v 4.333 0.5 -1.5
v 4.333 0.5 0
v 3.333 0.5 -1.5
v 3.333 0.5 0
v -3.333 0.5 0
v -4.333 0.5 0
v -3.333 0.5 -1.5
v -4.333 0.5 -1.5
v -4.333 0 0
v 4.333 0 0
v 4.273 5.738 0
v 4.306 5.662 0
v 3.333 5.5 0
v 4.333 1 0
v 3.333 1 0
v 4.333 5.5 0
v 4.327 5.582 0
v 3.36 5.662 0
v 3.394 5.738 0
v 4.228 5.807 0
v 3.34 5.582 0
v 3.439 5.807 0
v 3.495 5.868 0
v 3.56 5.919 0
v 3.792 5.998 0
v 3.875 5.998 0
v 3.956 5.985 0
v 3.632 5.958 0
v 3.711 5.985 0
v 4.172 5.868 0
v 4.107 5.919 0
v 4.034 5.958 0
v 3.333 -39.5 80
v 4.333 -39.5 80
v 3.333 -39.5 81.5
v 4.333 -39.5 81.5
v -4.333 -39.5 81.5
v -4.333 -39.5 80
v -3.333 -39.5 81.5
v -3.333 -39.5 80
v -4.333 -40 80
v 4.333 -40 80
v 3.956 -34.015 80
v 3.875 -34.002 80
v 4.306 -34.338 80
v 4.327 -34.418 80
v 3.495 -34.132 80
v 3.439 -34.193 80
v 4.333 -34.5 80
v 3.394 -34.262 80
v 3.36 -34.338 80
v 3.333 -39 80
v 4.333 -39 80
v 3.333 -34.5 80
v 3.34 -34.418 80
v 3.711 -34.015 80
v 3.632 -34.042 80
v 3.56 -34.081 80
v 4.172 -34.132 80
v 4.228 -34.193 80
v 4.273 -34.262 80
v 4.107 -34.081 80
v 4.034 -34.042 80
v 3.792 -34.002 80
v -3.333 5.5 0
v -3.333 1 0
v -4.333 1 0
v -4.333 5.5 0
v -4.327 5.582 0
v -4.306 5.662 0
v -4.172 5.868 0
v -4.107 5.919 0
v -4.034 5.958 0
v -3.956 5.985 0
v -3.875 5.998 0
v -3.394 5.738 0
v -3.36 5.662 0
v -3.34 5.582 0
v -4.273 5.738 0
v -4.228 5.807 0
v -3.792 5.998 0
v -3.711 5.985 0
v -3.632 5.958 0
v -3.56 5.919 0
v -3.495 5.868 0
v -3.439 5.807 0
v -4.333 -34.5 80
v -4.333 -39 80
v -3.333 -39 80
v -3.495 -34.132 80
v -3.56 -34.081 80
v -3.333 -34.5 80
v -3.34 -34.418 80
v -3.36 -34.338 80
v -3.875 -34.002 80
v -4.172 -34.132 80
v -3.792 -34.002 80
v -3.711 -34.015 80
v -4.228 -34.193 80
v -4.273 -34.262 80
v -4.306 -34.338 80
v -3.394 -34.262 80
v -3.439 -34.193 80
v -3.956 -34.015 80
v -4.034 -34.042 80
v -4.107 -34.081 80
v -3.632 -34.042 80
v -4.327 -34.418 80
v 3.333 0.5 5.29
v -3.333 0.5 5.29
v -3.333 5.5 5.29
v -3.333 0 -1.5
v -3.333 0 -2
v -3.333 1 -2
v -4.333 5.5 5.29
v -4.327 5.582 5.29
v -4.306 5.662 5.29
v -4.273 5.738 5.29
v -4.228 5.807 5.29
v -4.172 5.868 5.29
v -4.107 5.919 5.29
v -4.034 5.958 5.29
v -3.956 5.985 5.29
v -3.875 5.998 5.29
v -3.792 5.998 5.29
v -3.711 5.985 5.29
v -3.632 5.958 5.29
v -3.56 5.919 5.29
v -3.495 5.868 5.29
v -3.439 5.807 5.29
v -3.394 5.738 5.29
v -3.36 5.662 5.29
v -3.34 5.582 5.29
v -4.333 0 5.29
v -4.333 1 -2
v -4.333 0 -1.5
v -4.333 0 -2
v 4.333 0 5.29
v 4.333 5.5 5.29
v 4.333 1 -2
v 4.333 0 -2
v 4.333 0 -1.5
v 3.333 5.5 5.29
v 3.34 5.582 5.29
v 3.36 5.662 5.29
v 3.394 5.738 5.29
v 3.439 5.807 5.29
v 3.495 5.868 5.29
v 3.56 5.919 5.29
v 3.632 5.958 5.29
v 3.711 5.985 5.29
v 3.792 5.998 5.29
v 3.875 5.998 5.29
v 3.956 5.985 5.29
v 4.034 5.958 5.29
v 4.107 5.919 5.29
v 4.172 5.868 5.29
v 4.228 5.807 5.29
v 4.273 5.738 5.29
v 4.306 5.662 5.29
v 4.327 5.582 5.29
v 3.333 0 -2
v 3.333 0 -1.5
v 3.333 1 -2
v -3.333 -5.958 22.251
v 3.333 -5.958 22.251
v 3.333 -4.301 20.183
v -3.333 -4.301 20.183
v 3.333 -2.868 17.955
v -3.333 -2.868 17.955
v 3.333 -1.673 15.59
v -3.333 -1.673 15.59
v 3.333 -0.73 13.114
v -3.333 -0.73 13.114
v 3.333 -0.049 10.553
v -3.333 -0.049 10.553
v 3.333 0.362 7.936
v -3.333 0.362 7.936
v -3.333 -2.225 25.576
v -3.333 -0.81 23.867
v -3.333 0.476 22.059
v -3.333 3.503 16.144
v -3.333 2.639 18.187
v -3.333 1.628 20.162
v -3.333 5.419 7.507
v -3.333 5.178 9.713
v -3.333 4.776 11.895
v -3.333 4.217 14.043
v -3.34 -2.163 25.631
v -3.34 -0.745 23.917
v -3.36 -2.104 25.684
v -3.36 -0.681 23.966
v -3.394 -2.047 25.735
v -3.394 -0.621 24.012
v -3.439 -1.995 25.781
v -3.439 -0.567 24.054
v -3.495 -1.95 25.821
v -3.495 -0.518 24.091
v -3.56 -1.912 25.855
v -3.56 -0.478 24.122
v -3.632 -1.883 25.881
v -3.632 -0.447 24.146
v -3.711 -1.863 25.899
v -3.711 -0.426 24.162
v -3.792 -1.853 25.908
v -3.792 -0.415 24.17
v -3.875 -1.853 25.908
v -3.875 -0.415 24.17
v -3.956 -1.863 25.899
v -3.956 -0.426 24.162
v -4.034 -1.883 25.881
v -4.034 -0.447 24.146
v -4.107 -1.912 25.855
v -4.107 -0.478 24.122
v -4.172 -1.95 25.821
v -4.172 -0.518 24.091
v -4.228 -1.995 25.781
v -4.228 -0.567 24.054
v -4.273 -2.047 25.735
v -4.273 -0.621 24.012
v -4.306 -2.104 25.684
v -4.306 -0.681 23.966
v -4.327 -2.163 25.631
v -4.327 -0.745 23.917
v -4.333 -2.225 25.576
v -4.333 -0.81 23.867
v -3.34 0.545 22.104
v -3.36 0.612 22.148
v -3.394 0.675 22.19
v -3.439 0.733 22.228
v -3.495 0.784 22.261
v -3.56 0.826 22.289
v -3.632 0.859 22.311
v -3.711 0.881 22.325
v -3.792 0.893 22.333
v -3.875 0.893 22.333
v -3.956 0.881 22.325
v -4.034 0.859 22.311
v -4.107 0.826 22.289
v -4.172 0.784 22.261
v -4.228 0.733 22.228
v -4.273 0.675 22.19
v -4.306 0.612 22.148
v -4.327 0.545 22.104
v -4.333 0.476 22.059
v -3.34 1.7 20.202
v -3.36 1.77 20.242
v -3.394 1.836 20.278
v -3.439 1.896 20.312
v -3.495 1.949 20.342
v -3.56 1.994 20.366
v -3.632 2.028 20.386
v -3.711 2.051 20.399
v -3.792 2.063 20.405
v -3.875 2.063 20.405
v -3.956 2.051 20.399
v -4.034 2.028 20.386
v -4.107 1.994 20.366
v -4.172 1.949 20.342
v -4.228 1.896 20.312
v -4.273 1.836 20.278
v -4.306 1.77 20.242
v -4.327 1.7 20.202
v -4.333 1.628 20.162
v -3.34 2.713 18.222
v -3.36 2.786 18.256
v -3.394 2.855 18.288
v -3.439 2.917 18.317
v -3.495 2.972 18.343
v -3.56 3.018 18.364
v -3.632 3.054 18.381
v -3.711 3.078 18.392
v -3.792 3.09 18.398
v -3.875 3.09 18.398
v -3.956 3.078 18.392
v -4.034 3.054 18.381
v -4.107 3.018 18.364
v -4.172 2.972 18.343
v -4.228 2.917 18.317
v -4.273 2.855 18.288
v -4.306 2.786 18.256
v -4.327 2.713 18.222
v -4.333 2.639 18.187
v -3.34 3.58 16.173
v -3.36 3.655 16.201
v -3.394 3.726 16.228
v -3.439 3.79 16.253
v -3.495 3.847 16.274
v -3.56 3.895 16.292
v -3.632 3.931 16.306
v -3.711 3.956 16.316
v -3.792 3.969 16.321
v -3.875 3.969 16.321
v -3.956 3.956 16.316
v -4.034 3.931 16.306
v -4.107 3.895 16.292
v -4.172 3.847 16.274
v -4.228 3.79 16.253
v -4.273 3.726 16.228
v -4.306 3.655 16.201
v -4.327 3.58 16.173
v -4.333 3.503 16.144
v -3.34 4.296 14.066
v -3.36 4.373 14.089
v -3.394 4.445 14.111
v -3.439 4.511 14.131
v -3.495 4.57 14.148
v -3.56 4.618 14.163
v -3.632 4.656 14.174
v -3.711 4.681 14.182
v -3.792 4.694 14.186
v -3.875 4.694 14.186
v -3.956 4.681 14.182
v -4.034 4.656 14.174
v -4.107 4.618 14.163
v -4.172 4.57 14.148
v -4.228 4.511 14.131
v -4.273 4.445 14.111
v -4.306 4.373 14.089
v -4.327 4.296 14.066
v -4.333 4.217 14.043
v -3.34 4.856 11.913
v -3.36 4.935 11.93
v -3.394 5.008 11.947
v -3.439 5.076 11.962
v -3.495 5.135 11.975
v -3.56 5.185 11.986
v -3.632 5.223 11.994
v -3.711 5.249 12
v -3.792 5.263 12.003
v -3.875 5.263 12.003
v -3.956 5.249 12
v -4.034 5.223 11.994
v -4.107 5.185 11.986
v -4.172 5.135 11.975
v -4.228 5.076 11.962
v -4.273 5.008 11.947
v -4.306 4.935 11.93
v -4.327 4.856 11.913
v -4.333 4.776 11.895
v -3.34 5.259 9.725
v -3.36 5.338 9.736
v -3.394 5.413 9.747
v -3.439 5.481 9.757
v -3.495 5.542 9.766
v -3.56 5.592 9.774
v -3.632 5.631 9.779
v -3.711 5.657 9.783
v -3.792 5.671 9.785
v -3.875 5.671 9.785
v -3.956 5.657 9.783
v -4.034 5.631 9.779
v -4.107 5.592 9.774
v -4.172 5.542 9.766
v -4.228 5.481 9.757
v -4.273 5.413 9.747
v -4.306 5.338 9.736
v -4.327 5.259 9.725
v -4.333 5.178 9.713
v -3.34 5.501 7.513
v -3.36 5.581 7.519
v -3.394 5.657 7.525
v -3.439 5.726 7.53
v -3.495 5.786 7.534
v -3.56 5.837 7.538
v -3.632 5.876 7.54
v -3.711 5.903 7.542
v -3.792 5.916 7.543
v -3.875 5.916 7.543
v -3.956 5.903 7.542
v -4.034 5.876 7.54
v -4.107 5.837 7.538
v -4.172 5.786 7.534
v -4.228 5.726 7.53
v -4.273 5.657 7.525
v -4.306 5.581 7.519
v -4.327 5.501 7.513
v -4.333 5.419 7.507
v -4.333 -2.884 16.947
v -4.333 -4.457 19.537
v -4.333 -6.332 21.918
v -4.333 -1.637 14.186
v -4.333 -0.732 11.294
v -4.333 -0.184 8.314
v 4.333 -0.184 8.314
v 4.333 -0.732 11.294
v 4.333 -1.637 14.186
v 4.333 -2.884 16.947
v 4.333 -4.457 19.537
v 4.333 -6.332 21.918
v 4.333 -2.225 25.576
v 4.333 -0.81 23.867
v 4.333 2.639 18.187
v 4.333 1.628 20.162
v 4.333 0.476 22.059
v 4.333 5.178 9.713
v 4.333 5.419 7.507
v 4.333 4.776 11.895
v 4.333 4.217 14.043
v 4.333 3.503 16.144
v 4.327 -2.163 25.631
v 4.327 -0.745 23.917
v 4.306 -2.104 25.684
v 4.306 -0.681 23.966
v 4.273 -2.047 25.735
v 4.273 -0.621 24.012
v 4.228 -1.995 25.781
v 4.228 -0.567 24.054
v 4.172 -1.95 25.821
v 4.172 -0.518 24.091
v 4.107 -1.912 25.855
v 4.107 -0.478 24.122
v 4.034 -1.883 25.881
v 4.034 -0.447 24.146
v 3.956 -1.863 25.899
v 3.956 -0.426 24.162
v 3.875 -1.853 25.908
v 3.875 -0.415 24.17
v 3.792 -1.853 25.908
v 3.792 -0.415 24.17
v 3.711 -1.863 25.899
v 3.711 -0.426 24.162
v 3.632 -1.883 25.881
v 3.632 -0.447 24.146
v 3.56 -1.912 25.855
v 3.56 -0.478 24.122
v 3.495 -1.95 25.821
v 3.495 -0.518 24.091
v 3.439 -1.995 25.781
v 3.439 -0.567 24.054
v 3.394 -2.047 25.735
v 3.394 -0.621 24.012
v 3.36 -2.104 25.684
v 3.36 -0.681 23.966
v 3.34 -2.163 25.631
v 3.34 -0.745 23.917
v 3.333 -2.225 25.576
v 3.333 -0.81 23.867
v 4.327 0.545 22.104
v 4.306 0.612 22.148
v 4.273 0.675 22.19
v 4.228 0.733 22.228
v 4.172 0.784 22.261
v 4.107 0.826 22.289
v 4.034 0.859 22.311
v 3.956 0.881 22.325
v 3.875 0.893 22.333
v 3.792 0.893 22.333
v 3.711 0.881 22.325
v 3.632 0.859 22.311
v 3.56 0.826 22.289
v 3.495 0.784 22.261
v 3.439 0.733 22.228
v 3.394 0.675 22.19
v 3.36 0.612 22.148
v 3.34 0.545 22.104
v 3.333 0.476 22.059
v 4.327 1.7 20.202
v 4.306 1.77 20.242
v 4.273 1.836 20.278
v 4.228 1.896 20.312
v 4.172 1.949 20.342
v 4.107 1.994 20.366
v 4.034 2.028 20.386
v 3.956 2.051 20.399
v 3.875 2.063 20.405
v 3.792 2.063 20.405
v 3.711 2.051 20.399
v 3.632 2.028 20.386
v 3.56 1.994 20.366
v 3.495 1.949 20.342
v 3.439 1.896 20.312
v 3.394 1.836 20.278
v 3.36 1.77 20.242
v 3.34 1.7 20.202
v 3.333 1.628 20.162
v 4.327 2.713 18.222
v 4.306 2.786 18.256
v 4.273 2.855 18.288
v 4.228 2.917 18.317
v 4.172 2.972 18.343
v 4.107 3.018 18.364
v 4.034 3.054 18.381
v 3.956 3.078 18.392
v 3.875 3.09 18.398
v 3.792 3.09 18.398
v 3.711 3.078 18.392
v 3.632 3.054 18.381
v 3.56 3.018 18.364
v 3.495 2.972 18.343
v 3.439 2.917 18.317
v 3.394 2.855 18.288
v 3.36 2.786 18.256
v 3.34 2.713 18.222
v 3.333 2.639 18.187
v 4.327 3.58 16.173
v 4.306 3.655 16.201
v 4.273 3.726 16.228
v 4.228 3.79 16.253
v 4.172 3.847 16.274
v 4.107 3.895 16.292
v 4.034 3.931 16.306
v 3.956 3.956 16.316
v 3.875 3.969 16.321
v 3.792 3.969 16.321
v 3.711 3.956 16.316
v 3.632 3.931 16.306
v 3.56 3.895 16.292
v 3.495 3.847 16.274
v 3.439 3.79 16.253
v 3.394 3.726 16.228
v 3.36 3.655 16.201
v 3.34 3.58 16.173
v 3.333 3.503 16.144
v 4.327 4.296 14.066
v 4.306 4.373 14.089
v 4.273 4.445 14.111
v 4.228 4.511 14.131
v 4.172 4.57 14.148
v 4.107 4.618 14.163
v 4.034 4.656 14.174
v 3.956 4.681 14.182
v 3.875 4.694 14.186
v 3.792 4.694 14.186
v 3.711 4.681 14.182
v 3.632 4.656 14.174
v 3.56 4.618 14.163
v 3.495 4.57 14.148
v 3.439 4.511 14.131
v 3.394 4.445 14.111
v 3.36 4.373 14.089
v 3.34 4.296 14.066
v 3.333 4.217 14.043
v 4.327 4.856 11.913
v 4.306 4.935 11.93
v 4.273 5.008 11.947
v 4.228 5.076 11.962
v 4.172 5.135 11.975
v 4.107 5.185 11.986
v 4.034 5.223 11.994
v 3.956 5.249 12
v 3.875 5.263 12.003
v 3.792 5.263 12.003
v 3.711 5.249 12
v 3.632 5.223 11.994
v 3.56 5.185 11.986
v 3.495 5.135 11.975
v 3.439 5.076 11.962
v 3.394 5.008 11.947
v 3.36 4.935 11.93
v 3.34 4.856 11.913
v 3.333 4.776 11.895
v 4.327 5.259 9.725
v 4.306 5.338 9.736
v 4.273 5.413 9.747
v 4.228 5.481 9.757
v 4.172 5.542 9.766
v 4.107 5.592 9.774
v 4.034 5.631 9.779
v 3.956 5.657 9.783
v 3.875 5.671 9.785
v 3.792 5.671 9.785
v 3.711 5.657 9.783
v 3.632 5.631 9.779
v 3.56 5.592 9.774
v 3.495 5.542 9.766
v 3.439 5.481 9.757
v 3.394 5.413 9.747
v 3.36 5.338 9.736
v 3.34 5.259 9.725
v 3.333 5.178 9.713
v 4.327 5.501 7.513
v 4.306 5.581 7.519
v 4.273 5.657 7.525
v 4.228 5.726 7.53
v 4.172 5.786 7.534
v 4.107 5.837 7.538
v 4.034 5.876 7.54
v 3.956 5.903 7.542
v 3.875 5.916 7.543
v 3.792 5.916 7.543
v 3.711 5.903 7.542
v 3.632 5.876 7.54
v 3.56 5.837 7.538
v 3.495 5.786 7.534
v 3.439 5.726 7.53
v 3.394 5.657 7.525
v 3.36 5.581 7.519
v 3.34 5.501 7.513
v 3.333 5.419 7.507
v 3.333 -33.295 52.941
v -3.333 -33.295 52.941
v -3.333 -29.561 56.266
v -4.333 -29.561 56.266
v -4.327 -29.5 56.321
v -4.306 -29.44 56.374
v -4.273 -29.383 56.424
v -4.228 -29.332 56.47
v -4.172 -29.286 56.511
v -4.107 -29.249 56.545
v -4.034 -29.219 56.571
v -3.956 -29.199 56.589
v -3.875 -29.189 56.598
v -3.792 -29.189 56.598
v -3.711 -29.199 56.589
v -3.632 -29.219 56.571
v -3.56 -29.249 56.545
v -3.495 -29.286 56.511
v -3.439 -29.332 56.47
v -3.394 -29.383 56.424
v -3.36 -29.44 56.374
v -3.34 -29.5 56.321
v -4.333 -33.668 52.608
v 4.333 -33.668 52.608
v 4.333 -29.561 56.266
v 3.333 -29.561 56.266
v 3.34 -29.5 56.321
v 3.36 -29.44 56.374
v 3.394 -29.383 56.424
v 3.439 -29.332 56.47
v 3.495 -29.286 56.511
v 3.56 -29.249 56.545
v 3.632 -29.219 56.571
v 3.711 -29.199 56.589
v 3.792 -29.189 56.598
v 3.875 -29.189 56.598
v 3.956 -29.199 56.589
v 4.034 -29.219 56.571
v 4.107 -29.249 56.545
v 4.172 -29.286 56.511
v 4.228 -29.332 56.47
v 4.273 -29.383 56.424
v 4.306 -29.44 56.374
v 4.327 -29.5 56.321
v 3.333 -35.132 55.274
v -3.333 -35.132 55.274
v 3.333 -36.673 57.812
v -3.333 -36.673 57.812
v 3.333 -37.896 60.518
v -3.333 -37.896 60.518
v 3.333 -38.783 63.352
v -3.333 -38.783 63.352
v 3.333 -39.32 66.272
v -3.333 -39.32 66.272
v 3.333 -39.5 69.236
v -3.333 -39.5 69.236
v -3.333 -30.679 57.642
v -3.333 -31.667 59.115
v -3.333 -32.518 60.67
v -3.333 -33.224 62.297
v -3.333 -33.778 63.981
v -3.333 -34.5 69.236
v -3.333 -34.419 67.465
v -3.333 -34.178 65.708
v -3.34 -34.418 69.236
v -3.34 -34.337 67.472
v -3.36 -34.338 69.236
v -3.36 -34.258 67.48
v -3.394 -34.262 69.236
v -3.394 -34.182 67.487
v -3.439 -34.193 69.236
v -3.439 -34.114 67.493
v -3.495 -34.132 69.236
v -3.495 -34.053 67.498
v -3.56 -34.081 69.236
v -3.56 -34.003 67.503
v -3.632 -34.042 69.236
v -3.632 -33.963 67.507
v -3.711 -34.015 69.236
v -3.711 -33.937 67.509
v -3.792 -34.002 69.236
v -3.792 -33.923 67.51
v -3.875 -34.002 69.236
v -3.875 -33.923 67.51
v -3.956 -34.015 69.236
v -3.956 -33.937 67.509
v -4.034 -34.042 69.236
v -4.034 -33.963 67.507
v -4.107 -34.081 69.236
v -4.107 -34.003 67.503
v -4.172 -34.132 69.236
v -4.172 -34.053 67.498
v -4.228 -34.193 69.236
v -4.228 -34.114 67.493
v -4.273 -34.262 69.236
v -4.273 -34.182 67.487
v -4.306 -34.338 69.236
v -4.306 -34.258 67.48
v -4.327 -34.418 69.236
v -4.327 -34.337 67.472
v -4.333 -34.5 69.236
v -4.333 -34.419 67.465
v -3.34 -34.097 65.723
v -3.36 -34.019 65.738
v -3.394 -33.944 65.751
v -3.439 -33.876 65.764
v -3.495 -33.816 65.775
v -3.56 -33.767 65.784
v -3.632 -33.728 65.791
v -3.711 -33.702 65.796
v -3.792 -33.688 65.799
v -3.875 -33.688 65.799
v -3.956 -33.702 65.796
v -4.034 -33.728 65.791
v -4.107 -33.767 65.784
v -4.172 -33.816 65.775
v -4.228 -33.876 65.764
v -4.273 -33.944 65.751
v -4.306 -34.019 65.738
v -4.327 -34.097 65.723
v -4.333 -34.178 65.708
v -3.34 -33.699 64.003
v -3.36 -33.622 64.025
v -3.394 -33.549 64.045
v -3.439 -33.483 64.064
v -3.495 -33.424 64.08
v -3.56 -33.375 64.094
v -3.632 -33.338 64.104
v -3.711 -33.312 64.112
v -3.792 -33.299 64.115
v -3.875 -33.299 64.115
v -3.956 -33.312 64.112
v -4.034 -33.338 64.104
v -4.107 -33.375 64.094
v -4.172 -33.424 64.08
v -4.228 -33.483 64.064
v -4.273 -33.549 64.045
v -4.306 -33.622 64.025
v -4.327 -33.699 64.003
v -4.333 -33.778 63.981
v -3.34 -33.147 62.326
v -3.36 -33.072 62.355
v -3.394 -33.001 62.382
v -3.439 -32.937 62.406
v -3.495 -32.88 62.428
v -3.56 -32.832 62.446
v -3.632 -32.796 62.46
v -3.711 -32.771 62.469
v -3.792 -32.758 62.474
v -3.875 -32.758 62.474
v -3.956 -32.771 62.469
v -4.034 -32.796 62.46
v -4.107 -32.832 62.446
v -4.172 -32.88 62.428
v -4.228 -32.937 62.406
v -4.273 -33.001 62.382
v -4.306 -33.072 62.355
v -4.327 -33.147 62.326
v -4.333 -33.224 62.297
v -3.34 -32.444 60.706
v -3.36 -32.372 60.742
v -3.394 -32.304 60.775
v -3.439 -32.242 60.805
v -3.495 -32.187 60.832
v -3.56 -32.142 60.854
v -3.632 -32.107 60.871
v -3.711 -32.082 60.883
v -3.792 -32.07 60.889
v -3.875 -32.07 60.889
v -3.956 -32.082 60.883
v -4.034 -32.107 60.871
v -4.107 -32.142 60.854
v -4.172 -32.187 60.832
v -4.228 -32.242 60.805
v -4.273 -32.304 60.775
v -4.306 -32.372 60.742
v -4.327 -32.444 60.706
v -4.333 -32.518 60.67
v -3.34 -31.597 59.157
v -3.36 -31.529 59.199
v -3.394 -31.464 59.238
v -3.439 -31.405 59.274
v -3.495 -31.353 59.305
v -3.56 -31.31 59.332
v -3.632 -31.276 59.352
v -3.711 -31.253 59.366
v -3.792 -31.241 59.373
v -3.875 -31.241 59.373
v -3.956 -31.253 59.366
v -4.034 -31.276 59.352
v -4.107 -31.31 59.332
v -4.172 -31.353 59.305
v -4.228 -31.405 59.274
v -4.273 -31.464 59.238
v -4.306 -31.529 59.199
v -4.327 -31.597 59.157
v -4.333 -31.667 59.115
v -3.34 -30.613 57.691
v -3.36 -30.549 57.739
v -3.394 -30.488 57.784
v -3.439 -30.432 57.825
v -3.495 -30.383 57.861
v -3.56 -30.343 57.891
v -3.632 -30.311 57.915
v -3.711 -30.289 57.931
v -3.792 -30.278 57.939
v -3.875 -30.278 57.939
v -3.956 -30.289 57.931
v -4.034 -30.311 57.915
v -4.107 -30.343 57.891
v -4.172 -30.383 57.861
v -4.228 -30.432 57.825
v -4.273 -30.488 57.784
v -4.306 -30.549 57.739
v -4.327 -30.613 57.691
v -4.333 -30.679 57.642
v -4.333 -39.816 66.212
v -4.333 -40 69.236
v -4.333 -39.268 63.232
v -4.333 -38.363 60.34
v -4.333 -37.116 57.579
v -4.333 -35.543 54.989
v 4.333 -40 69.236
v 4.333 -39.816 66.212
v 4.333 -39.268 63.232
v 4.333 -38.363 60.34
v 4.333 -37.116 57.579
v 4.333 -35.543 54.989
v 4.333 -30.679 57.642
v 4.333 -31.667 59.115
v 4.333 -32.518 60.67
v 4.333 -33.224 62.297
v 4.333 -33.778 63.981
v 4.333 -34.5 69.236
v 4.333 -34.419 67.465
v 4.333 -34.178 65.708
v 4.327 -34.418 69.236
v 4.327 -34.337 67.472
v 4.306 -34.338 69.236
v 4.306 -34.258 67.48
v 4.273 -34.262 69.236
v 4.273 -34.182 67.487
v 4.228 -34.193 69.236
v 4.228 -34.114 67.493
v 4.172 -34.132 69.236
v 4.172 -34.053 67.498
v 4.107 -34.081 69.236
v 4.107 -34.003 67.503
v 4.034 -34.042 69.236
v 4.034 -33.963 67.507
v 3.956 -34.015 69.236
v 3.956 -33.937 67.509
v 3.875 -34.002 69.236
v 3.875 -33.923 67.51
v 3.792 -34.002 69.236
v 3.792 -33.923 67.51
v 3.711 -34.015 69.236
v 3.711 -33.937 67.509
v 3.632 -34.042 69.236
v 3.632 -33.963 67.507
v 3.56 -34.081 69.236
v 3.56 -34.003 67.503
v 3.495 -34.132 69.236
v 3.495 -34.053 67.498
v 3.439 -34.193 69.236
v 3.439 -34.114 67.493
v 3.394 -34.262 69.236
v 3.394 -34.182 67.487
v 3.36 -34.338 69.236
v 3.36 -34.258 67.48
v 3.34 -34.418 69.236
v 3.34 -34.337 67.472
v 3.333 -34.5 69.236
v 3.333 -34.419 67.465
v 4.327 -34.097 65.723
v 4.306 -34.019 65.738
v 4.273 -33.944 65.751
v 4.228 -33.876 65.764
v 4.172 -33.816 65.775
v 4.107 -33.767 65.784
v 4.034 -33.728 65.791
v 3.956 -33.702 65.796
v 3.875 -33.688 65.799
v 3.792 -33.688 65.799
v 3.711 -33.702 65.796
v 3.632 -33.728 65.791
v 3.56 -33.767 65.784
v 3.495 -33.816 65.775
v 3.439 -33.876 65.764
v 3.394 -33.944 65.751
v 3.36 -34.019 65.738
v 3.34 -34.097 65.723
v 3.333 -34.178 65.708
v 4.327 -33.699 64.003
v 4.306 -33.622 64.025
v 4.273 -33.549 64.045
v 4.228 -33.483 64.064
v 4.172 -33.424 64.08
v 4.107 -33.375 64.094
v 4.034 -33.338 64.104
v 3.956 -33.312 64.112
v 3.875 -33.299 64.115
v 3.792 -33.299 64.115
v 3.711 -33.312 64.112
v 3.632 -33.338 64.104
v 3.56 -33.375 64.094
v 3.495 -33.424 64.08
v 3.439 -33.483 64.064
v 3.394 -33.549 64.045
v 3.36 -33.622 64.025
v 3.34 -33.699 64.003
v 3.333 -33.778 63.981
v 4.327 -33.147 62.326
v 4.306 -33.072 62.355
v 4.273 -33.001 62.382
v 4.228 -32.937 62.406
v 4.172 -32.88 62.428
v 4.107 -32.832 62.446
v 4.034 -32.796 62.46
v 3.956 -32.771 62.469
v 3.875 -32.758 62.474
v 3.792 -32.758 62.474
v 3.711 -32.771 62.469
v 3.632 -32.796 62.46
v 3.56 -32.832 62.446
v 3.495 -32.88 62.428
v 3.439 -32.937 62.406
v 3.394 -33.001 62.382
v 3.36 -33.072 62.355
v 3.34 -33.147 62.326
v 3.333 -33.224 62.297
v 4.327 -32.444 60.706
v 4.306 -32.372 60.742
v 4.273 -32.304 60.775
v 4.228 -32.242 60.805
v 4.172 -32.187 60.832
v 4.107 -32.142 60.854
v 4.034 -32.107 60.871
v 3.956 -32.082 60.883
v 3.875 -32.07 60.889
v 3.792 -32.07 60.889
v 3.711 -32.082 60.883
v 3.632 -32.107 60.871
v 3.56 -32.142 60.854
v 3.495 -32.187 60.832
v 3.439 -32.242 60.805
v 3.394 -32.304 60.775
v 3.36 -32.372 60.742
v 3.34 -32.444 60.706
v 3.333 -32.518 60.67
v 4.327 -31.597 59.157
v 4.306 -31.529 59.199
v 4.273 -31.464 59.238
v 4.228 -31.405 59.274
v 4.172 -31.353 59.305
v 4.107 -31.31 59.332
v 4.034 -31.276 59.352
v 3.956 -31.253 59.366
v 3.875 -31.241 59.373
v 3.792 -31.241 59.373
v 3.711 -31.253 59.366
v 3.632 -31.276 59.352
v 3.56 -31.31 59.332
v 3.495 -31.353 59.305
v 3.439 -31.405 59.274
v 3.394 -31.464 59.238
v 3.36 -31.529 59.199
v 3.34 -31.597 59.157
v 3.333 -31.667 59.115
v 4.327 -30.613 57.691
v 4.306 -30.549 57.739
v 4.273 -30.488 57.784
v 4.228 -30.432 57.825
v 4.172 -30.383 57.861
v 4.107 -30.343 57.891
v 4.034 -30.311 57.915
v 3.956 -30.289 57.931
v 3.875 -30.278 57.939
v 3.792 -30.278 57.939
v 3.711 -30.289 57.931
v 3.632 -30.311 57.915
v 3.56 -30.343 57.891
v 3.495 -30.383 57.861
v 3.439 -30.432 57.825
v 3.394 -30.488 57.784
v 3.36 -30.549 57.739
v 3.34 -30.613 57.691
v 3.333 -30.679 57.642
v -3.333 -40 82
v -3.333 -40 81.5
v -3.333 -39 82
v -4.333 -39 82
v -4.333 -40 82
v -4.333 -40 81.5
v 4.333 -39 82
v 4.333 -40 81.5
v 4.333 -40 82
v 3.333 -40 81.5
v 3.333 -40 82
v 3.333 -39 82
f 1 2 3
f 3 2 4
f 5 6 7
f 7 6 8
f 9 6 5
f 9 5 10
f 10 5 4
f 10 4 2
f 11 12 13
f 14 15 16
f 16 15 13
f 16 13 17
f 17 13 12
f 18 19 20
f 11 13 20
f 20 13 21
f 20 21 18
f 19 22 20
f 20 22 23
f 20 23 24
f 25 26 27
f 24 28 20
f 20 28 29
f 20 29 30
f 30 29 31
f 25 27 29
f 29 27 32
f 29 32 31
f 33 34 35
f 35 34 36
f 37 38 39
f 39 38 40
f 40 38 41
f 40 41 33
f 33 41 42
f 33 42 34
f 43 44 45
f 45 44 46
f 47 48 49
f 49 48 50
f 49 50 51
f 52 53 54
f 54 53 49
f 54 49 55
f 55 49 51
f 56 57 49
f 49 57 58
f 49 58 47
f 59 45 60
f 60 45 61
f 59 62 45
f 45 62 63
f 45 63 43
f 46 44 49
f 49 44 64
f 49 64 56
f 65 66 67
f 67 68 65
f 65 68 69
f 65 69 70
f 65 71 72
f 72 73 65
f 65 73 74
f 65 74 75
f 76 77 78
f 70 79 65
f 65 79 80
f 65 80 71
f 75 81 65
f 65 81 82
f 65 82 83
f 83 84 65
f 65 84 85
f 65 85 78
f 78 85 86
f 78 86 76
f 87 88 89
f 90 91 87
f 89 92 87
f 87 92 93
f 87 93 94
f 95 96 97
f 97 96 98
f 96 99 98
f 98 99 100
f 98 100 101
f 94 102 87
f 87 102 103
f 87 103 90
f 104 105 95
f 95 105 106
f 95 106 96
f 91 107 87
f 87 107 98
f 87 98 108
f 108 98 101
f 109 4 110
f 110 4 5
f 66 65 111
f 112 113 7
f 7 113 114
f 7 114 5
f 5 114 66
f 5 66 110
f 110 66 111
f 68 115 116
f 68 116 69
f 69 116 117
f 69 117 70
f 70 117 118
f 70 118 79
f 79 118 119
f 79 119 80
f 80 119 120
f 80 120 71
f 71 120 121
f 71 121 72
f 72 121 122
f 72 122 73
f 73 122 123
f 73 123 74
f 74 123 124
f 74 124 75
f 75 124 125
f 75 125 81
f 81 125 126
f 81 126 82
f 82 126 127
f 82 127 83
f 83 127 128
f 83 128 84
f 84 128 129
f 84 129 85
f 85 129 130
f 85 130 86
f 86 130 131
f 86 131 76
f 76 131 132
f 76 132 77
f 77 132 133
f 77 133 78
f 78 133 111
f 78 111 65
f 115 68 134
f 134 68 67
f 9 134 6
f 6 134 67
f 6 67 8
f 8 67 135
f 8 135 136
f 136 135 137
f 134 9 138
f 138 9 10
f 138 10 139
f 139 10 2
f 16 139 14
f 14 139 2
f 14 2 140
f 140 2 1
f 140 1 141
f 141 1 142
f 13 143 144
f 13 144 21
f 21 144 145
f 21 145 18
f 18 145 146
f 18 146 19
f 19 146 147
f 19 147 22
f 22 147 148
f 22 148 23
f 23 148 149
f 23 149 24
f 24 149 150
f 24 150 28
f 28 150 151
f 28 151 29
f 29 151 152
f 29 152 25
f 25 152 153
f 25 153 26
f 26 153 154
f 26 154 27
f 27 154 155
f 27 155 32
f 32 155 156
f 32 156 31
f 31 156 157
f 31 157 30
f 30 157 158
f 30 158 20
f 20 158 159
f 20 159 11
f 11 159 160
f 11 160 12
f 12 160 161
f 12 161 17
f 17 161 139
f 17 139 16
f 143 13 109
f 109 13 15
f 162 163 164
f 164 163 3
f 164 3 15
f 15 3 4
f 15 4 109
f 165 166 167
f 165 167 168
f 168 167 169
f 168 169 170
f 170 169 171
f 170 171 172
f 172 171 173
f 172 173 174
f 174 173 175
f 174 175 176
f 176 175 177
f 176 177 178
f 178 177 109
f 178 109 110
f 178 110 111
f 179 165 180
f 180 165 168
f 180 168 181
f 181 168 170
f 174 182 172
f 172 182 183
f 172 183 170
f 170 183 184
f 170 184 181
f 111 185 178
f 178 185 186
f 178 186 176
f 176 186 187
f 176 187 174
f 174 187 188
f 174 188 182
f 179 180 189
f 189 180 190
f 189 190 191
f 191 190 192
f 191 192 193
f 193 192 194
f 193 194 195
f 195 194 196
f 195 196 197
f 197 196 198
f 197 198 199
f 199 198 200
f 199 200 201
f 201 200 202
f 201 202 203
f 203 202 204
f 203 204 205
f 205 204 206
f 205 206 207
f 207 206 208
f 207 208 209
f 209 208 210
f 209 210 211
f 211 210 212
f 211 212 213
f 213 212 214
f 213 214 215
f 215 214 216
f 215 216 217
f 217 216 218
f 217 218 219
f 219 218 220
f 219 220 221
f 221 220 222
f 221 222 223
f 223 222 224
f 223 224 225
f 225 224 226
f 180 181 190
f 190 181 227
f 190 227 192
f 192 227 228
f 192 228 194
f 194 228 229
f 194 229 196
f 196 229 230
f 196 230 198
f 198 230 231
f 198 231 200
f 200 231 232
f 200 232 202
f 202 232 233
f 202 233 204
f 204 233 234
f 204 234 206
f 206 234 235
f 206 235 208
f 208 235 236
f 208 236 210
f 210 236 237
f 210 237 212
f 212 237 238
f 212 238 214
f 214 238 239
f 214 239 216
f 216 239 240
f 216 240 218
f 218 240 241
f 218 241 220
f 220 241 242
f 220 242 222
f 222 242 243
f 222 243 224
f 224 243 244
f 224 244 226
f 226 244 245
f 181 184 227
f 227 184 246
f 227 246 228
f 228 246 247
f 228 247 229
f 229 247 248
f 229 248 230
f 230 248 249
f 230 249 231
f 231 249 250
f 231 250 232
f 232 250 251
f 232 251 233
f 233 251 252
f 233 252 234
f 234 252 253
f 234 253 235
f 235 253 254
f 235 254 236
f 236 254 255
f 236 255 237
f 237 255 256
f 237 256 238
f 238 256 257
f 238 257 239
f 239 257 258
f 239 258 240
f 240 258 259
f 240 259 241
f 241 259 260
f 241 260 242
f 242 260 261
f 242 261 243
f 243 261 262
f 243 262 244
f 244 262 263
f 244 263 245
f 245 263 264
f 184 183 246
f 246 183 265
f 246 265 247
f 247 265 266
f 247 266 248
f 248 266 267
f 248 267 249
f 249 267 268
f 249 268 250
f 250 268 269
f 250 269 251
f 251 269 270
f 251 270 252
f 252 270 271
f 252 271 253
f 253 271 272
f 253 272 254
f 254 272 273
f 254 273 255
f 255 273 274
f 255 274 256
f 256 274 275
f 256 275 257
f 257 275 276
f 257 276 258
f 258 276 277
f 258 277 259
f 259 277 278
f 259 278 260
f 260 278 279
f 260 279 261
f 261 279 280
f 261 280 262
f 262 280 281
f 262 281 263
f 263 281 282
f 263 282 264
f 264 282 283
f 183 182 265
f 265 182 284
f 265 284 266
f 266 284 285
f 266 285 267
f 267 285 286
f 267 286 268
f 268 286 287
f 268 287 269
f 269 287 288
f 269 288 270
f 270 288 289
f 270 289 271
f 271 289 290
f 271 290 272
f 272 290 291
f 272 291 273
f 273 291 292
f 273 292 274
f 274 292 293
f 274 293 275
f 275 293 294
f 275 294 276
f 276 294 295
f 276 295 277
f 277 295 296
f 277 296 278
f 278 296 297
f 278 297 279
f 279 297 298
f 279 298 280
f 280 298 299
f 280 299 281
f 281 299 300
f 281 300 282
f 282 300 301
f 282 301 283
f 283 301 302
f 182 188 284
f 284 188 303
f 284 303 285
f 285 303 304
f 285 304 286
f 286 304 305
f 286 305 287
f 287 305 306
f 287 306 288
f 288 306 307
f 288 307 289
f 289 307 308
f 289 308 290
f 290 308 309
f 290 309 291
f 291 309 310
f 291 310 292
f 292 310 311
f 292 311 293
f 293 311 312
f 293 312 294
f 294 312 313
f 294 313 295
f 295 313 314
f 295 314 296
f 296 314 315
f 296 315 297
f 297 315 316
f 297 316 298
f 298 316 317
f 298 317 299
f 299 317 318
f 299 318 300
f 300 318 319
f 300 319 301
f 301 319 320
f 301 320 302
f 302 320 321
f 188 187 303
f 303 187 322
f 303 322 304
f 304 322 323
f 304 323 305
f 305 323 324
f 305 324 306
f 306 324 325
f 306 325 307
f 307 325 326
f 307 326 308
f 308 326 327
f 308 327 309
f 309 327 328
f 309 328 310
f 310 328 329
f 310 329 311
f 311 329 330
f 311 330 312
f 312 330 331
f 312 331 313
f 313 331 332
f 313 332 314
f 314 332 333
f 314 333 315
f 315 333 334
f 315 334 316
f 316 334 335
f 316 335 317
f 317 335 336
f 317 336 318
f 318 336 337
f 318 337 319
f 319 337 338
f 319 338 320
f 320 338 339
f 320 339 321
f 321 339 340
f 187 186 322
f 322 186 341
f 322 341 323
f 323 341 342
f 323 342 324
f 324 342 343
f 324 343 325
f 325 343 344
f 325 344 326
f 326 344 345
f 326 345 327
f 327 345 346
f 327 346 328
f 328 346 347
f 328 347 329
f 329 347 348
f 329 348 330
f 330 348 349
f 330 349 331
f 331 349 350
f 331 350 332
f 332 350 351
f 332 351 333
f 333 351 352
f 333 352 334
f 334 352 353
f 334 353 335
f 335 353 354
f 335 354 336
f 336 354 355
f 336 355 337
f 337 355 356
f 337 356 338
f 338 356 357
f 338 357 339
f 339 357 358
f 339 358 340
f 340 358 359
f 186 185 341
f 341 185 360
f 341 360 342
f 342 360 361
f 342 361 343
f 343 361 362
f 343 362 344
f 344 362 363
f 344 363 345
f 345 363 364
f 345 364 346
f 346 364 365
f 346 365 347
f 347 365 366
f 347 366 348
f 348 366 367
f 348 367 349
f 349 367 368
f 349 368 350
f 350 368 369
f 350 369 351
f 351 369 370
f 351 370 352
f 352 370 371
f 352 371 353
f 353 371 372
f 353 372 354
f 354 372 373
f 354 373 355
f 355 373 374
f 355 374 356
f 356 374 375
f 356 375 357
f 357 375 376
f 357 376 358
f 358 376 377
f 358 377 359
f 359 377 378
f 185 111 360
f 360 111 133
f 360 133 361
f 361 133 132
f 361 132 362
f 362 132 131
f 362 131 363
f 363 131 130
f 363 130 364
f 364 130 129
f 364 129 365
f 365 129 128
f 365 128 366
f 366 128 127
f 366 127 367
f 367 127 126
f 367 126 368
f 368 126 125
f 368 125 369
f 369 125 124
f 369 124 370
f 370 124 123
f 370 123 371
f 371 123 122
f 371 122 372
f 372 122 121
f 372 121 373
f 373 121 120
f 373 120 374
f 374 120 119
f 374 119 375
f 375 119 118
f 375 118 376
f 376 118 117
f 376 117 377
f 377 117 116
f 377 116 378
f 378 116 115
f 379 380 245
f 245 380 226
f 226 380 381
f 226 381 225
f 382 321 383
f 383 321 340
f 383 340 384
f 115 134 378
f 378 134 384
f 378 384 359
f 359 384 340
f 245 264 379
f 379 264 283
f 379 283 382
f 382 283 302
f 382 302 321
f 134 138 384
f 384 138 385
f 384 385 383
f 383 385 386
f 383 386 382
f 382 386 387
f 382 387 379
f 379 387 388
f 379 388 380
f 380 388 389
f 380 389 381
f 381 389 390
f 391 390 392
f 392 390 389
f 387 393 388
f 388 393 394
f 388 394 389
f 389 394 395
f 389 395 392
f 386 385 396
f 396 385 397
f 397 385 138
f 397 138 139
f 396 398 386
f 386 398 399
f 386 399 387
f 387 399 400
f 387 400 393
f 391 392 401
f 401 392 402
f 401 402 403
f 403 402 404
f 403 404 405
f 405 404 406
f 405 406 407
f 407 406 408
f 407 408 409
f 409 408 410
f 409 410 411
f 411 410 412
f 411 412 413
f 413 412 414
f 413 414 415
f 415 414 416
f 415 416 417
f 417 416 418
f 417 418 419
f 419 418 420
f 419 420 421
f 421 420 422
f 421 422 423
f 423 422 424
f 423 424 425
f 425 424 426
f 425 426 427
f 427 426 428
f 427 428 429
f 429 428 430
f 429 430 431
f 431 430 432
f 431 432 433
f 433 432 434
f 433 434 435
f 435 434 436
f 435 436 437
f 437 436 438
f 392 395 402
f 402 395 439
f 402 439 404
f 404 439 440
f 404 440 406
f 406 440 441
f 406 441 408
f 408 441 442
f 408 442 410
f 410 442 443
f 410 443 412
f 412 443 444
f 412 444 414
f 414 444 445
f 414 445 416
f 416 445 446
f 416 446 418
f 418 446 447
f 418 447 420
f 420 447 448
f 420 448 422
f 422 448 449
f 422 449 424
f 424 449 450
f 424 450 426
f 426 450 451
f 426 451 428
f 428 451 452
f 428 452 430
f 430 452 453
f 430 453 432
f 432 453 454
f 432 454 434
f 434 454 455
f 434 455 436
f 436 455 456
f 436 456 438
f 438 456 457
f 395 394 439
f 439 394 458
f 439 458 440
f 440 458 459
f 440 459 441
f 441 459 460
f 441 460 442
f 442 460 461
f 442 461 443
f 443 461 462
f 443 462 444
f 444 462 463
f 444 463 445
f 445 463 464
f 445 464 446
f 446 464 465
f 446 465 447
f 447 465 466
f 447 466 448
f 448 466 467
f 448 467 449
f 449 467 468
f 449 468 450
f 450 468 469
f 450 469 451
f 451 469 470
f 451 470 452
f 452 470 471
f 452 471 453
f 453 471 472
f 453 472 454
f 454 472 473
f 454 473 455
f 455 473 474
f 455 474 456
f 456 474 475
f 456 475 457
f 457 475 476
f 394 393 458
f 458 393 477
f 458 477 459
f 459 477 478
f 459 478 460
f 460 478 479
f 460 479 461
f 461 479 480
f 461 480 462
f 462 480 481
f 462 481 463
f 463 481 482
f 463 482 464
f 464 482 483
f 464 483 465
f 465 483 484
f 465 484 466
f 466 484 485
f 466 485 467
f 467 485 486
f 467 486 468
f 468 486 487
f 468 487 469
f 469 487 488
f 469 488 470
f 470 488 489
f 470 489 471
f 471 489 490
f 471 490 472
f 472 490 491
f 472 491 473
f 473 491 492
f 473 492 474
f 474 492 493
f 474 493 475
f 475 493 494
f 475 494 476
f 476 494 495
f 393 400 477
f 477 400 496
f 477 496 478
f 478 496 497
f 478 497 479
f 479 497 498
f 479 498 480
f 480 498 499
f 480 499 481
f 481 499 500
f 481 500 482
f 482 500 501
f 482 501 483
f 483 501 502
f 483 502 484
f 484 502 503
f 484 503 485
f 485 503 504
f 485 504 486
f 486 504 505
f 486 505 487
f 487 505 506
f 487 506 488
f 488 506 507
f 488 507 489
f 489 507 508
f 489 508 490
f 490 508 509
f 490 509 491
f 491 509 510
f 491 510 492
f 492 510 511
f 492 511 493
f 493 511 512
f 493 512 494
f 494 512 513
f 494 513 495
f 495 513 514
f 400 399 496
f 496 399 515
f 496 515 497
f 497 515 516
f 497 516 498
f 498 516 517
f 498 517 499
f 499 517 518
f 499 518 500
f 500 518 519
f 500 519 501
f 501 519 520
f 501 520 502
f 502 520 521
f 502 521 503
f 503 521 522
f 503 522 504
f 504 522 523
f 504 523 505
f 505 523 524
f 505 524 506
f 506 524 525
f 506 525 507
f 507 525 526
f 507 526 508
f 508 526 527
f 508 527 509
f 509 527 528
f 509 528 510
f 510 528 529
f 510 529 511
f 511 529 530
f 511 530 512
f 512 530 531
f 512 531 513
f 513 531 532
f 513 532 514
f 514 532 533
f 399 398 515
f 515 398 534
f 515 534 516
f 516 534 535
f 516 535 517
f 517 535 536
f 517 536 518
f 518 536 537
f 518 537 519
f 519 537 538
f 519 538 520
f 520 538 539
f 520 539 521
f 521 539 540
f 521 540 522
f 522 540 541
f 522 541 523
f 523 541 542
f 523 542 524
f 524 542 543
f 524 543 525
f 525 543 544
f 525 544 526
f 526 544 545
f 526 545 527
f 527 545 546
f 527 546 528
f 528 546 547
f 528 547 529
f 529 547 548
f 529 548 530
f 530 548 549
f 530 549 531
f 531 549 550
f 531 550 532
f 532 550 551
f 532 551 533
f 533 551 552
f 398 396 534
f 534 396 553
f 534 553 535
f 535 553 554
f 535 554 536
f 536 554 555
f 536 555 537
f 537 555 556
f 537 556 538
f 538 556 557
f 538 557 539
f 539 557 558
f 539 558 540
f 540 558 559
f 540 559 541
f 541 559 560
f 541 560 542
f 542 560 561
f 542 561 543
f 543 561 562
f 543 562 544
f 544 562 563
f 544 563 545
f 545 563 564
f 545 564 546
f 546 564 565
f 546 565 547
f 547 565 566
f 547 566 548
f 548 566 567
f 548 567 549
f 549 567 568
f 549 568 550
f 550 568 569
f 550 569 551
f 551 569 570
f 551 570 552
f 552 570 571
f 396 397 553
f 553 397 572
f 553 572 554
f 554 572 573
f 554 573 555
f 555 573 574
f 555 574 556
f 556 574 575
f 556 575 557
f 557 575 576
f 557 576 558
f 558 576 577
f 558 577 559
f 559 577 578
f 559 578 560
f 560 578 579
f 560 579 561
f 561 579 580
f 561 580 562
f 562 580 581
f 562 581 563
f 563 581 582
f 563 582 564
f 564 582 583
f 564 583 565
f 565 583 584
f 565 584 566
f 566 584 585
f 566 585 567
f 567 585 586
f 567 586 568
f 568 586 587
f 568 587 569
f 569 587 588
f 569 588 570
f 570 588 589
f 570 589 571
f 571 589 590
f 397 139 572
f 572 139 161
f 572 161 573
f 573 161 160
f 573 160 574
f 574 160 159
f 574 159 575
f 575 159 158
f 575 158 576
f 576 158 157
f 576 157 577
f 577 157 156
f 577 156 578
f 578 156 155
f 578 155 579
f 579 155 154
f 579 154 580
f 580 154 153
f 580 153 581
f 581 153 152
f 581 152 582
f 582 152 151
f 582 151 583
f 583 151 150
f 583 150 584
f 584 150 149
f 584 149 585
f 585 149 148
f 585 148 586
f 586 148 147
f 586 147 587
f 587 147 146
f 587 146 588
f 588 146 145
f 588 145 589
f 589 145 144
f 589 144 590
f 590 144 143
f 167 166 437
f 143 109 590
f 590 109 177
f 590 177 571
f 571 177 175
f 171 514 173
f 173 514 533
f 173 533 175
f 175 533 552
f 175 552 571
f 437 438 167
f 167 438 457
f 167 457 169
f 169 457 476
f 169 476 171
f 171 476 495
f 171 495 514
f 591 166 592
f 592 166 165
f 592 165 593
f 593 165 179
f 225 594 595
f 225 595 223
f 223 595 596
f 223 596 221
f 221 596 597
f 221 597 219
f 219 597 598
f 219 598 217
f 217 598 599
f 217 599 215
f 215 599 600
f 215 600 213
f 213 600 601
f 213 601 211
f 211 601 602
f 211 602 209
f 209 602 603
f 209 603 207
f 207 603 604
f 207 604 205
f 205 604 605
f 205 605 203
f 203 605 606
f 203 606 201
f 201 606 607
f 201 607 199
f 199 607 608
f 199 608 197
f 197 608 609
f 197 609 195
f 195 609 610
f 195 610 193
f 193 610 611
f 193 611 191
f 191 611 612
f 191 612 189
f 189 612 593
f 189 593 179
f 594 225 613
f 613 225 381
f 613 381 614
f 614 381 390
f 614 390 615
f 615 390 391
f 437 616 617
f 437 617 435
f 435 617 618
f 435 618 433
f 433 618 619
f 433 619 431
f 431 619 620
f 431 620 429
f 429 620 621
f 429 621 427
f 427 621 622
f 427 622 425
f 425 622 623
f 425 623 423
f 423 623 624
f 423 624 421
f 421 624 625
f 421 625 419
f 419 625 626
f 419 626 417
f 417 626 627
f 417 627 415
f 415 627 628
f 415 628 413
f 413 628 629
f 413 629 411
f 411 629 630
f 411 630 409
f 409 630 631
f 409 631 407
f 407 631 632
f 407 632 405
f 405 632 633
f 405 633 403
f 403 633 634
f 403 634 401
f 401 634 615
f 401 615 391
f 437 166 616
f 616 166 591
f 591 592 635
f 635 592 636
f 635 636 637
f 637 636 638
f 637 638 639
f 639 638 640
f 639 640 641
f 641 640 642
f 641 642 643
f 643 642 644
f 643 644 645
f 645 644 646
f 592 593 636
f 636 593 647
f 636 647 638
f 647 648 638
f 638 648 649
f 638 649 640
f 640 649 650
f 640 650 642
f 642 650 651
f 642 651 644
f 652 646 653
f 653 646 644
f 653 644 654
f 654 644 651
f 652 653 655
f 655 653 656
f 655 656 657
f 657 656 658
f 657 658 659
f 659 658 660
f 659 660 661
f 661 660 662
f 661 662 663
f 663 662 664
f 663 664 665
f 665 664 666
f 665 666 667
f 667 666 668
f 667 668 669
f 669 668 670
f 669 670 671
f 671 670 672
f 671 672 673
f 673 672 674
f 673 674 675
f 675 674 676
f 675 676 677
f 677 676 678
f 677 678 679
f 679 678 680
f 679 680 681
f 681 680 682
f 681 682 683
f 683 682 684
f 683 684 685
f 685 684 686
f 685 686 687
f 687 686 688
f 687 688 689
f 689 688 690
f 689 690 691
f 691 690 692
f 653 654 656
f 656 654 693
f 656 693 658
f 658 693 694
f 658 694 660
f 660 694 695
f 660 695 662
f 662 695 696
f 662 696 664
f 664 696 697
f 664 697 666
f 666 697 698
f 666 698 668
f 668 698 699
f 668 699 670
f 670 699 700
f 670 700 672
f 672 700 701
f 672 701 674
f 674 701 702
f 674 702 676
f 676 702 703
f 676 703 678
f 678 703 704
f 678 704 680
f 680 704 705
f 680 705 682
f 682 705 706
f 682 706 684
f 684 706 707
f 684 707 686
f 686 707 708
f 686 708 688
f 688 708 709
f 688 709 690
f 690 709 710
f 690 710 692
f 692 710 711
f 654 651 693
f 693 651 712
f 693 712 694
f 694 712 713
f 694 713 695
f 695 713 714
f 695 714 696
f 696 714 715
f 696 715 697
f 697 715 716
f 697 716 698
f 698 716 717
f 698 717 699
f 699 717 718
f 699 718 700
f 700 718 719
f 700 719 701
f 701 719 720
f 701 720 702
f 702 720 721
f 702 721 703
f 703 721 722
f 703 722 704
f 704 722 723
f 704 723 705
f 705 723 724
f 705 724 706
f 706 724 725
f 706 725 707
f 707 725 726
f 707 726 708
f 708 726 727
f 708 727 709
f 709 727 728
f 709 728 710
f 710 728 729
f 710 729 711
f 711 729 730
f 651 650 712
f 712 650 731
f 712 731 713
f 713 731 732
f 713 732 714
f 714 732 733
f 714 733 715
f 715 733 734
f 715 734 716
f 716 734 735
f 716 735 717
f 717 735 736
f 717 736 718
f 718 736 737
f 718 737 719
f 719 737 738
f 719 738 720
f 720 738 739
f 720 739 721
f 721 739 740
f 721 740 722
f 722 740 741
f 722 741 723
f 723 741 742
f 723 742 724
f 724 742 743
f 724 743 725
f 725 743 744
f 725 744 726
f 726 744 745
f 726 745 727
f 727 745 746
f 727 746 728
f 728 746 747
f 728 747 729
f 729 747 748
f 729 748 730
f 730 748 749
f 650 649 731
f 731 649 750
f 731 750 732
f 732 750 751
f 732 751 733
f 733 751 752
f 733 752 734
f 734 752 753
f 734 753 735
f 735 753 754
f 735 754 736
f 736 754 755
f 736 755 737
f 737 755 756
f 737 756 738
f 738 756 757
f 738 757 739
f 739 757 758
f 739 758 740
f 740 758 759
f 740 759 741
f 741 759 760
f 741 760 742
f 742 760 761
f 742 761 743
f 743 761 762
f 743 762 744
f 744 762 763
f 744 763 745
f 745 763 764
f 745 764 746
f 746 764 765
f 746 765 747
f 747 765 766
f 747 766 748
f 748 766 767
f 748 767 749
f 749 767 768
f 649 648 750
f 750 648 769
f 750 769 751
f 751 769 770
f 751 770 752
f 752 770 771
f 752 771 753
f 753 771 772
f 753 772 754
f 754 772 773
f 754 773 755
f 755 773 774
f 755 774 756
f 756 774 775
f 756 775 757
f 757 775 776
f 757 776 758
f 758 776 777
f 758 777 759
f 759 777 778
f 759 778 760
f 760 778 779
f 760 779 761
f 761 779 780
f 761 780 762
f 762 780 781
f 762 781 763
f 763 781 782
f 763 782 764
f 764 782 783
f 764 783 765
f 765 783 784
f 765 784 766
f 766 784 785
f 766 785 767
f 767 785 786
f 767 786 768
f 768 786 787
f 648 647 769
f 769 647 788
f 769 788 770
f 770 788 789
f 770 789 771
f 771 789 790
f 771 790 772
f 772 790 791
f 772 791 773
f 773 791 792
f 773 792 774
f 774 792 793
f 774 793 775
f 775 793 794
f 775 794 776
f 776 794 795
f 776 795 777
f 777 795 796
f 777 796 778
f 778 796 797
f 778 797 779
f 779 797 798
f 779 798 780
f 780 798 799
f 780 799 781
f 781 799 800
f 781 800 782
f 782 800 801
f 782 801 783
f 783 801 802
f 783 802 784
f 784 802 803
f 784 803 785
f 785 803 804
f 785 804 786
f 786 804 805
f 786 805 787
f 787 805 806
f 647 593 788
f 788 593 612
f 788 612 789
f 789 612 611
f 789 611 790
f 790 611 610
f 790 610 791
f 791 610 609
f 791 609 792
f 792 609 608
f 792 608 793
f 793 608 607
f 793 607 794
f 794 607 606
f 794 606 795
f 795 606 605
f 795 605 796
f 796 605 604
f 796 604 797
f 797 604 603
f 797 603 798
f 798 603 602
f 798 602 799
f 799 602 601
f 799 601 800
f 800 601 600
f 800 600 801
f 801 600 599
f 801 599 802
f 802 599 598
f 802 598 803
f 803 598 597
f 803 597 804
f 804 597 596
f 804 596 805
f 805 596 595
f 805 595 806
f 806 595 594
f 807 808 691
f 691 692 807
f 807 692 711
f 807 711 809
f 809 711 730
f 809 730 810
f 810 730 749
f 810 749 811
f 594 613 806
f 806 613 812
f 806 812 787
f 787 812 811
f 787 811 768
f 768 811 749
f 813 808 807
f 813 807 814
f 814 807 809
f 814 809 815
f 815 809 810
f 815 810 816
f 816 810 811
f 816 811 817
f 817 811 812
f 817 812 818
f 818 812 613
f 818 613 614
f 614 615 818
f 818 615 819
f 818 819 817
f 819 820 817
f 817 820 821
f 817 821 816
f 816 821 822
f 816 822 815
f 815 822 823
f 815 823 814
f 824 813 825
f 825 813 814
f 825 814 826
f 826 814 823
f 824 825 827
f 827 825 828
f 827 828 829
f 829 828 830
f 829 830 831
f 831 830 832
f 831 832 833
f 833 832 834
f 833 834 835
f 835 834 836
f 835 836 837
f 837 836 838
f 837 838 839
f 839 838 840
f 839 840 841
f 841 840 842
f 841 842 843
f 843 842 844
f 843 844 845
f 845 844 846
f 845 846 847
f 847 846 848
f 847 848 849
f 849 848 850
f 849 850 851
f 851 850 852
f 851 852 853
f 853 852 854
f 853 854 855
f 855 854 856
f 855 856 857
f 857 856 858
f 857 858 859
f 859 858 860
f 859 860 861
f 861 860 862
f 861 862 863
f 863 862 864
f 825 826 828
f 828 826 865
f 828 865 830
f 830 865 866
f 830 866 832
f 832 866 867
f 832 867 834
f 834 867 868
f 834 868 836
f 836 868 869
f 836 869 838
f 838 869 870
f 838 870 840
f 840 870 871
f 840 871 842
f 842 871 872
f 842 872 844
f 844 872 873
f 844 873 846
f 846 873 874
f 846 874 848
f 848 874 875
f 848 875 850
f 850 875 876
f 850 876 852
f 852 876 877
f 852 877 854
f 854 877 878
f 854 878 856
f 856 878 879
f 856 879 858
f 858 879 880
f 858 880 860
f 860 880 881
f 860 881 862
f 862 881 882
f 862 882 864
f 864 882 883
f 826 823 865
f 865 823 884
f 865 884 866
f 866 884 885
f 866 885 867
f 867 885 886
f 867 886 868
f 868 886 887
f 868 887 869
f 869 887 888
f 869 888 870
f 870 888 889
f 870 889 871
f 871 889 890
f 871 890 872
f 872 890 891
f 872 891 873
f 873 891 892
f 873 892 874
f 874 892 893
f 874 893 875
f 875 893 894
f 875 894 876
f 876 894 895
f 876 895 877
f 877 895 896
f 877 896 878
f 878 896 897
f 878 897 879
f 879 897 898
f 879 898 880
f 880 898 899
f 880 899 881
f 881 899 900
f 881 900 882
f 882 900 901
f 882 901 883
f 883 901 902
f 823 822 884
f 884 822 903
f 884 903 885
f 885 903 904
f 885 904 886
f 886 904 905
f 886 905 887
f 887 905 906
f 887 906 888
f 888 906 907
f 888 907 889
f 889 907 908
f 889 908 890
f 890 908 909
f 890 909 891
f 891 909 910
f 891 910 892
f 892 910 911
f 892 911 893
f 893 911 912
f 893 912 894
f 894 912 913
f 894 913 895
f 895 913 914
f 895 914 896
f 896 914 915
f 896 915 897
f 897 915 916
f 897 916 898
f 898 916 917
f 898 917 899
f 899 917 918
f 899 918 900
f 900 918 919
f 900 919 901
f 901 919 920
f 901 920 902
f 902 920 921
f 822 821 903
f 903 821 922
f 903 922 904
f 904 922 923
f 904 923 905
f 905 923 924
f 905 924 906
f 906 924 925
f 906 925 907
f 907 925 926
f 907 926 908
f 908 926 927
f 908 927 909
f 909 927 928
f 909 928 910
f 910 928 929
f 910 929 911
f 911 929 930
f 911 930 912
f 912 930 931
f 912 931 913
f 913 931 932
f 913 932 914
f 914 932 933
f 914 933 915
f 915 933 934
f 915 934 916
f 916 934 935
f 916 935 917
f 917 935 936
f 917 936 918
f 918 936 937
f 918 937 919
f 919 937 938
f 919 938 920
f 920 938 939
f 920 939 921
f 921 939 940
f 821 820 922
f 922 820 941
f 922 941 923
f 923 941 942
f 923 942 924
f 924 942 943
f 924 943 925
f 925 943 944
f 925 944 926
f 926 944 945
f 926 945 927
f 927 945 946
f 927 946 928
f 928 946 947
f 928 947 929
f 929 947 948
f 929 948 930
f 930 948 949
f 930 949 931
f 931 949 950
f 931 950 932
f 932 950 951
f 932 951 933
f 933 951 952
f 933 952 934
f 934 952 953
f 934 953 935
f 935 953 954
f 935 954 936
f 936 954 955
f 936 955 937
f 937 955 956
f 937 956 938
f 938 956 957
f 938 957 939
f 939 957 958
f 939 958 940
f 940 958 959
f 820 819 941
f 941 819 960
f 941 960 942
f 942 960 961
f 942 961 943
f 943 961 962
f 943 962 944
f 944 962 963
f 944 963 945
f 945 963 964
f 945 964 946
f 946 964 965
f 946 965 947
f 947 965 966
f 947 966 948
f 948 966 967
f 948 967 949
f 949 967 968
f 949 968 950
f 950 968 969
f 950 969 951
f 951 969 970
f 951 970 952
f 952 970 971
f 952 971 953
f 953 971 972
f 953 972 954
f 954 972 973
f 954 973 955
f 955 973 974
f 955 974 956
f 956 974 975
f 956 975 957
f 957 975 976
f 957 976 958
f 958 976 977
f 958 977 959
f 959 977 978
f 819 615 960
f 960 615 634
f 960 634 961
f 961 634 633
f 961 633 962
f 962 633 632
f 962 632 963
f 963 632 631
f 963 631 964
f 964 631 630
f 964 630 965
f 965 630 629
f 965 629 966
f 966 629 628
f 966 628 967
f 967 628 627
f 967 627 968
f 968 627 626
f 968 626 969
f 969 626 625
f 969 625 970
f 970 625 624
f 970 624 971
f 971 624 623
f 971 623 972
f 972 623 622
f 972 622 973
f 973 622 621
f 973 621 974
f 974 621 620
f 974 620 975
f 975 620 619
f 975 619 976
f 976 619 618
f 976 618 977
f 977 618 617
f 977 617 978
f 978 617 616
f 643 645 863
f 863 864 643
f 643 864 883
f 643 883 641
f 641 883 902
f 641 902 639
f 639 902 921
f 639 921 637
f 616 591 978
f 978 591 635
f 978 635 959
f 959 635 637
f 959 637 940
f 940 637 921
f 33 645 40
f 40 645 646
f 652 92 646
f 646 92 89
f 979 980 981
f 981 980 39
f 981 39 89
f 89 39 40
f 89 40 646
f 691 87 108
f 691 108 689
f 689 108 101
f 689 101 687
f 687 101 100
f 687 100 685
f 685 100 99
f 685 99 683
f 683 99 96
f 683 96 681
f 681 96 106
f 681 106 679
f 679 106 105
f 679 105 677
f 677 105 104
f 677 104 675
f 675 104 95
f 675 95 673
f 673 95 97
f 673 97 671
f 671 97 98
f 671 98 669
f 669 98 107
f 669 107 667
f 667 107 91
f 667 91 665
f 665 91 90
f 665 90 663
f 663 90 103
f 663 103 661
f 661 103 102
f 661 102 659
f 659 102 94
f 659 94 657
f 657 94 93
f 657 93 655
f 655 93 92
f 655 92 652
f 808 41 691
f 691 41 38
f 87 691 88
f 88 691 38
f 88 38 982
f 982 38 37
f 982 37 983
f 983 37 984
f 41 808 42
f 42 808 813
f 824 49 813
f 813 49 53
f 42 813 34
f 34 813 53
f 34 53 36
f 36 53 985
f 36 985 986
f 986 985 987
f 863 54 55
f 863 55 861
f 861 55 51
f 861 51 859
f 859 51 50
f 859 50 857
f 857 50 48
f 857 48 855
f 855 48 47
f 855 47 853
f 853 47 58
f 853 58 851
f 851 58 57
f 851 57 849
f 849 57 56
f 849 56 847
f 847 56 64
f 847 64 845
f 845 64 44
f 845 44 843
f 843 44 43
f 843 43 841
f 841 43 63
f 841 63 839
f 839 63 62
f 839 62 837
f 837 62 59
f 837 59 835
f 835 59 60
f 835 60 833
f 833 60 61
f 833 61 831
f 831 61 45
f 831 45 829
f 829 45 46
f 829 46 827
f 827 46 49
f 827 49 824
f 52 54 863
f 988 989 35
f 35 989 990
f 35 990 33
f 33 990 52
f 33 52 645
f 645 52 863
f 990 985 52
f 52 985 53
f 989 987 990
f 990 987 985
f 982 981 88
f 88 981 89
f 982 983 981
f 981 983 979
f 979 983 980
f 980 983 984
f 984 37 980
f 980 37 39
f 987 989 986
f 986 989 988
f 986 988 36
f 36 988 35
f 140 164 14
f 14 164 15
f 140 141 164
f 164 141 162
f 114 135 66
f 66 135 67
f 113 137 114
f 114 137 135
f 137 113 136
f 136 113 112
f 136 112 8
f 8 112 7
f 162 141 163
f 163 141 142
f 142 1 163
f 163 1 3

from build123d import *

# Parameters (mm, degrees)
SKETCH3_W           = 1
SKETCH3_H           = 0.5
BOSS_EXTRUDE1_DEPTH = 2
BOSS_EXTRUDE2_START = 1.5
SKETCH3_3_W         = 1
SKETCH3_3_H         = 0.5
BOSS_EXTRUDE2_DEPTH = 0.5
SKETCH5_W           = 1
SKETCH5_H           = 0.5
BOSS_EXTRUDE3_DEPTH = 2
BOSS_EXTRUDE4_START = 1.5
SKETCH5_3_W         = 1
SKETCH5_3_H         = 0.5
BOSS_EXTRUDE4_DEPTH = 0.5


with BuildPart() as part:
    # Sweep1: sweep along a path in Sketch2
    with BuildLine(Plane.YZ) as sweep1_path:
        Line((0, 0), (0, 5.289768345))
        ThreePointArc((0, 5.289768345), (-1.636519098, 14.186271038), (-6.331820813, 21.918030005))
        Line((-6.331820813, 21.918030005), (-33.668179187, 52.60795099))
        ThreePointArc((-33.668179187, 52.60795099), (-38.363480902, 60.339709958), (-40, 69.23621265))
        Line((-40, 69.23621265), (-40, 80))
    # Sketch1 → Sweep1 (sweep)
    with BuildSketch(Plane.XY):
        with BuildLine():
            ThreePointArc((3.333333333, 5.5), (3.833333333, 6), (4.333333333, 5.5))
            Line((4.333333333, 5.5), (4.333333333, 0))
            Line((4.333333333, 0), (-4.333333333, 0))
            Line((-4.333333333, 0), (-4.333333333, 5.5))
            ThreePointArc((-4.333333333, 5.5), (-3.833333333, 6), (-3.333333333, 5.5))
            Line((-3.333333333, 5.5), (-3.333333333, 0.5))
            Line((-3.333333333, 0.5), (3.333333333, 0.5))
            Line((3.333333333, 0.5), (3.333333333, 5.5))
        make_face()
    sweep(path=sweep1_path.line)

    # Sketch3 → Boss-Extrude1 (add)
    with BuildSketch(Plane.XY.offset(80)):
        with Locations((-3.833333333, -39.25)):
            Rectangle(SKETCH3_W, SKETCH3_H)
        with Locations((3.833333333, -39.25)):
            Rectangle(SKETCH3_W, SKETCH3_H)
    extrude(amount=BOSS_EXTRUDE1_DEPTH)

    # Sketch3<3> → Boss-Extrude2 (add)
    with BuildSketch(Plane.XY.offset(80).offset(BOSS_EXTRUDE2_START)):
        with Locations((-3.833333333, -39.75)):
            Rectangle(SKETCH3_3_W, SKETCH3_3_H)
        with Locations((3.833333333, -39.75)):
            Rectangle(SKETCH3_3_W, SKETCH3_3_H)
    extrude(amount=BOSS_EXTRUDE2_DEPTH)

    # Sketch5 → Boss-Extrude3 (add)
    with BuildSketch(Plane(origin=(0, 0, 0), x_dir=(-1, 0, 0), z_dir=(0, 0, -1))):
        with Locations((3.833333333, 0.75)):
            Rectangle(SKETCH5_W, SKETCH5_H)
        with Locations((-3.833333333, 0.75)):
            Rectangle(SKETCH5_W, SKETCH5_H)
    extrude(amount=BOSS_EXTRUDE3_DEPTH)

    # Sketch5<3> → Boss-Extrude4 (add)
    with BuildSketch(Plane(origin=(0, 0, 0), x_dir=(-1, 0, 0), z_dir=(0, 0, -1)).offset(BOSS_EXTRUDE4_START)):
        with Locations((-3.833333333, 0.25)):
            Rectangle(SKETCH5_3_W, SKETCH5_3_H)
        with Locations((3.833333333, 0.25)):
            Rectangle(SKETCH5_3_W, SKETCH5_3_H)
    extrude(amount=BOSS_EXTRUDE4_DEPTH)


solid = part.part
